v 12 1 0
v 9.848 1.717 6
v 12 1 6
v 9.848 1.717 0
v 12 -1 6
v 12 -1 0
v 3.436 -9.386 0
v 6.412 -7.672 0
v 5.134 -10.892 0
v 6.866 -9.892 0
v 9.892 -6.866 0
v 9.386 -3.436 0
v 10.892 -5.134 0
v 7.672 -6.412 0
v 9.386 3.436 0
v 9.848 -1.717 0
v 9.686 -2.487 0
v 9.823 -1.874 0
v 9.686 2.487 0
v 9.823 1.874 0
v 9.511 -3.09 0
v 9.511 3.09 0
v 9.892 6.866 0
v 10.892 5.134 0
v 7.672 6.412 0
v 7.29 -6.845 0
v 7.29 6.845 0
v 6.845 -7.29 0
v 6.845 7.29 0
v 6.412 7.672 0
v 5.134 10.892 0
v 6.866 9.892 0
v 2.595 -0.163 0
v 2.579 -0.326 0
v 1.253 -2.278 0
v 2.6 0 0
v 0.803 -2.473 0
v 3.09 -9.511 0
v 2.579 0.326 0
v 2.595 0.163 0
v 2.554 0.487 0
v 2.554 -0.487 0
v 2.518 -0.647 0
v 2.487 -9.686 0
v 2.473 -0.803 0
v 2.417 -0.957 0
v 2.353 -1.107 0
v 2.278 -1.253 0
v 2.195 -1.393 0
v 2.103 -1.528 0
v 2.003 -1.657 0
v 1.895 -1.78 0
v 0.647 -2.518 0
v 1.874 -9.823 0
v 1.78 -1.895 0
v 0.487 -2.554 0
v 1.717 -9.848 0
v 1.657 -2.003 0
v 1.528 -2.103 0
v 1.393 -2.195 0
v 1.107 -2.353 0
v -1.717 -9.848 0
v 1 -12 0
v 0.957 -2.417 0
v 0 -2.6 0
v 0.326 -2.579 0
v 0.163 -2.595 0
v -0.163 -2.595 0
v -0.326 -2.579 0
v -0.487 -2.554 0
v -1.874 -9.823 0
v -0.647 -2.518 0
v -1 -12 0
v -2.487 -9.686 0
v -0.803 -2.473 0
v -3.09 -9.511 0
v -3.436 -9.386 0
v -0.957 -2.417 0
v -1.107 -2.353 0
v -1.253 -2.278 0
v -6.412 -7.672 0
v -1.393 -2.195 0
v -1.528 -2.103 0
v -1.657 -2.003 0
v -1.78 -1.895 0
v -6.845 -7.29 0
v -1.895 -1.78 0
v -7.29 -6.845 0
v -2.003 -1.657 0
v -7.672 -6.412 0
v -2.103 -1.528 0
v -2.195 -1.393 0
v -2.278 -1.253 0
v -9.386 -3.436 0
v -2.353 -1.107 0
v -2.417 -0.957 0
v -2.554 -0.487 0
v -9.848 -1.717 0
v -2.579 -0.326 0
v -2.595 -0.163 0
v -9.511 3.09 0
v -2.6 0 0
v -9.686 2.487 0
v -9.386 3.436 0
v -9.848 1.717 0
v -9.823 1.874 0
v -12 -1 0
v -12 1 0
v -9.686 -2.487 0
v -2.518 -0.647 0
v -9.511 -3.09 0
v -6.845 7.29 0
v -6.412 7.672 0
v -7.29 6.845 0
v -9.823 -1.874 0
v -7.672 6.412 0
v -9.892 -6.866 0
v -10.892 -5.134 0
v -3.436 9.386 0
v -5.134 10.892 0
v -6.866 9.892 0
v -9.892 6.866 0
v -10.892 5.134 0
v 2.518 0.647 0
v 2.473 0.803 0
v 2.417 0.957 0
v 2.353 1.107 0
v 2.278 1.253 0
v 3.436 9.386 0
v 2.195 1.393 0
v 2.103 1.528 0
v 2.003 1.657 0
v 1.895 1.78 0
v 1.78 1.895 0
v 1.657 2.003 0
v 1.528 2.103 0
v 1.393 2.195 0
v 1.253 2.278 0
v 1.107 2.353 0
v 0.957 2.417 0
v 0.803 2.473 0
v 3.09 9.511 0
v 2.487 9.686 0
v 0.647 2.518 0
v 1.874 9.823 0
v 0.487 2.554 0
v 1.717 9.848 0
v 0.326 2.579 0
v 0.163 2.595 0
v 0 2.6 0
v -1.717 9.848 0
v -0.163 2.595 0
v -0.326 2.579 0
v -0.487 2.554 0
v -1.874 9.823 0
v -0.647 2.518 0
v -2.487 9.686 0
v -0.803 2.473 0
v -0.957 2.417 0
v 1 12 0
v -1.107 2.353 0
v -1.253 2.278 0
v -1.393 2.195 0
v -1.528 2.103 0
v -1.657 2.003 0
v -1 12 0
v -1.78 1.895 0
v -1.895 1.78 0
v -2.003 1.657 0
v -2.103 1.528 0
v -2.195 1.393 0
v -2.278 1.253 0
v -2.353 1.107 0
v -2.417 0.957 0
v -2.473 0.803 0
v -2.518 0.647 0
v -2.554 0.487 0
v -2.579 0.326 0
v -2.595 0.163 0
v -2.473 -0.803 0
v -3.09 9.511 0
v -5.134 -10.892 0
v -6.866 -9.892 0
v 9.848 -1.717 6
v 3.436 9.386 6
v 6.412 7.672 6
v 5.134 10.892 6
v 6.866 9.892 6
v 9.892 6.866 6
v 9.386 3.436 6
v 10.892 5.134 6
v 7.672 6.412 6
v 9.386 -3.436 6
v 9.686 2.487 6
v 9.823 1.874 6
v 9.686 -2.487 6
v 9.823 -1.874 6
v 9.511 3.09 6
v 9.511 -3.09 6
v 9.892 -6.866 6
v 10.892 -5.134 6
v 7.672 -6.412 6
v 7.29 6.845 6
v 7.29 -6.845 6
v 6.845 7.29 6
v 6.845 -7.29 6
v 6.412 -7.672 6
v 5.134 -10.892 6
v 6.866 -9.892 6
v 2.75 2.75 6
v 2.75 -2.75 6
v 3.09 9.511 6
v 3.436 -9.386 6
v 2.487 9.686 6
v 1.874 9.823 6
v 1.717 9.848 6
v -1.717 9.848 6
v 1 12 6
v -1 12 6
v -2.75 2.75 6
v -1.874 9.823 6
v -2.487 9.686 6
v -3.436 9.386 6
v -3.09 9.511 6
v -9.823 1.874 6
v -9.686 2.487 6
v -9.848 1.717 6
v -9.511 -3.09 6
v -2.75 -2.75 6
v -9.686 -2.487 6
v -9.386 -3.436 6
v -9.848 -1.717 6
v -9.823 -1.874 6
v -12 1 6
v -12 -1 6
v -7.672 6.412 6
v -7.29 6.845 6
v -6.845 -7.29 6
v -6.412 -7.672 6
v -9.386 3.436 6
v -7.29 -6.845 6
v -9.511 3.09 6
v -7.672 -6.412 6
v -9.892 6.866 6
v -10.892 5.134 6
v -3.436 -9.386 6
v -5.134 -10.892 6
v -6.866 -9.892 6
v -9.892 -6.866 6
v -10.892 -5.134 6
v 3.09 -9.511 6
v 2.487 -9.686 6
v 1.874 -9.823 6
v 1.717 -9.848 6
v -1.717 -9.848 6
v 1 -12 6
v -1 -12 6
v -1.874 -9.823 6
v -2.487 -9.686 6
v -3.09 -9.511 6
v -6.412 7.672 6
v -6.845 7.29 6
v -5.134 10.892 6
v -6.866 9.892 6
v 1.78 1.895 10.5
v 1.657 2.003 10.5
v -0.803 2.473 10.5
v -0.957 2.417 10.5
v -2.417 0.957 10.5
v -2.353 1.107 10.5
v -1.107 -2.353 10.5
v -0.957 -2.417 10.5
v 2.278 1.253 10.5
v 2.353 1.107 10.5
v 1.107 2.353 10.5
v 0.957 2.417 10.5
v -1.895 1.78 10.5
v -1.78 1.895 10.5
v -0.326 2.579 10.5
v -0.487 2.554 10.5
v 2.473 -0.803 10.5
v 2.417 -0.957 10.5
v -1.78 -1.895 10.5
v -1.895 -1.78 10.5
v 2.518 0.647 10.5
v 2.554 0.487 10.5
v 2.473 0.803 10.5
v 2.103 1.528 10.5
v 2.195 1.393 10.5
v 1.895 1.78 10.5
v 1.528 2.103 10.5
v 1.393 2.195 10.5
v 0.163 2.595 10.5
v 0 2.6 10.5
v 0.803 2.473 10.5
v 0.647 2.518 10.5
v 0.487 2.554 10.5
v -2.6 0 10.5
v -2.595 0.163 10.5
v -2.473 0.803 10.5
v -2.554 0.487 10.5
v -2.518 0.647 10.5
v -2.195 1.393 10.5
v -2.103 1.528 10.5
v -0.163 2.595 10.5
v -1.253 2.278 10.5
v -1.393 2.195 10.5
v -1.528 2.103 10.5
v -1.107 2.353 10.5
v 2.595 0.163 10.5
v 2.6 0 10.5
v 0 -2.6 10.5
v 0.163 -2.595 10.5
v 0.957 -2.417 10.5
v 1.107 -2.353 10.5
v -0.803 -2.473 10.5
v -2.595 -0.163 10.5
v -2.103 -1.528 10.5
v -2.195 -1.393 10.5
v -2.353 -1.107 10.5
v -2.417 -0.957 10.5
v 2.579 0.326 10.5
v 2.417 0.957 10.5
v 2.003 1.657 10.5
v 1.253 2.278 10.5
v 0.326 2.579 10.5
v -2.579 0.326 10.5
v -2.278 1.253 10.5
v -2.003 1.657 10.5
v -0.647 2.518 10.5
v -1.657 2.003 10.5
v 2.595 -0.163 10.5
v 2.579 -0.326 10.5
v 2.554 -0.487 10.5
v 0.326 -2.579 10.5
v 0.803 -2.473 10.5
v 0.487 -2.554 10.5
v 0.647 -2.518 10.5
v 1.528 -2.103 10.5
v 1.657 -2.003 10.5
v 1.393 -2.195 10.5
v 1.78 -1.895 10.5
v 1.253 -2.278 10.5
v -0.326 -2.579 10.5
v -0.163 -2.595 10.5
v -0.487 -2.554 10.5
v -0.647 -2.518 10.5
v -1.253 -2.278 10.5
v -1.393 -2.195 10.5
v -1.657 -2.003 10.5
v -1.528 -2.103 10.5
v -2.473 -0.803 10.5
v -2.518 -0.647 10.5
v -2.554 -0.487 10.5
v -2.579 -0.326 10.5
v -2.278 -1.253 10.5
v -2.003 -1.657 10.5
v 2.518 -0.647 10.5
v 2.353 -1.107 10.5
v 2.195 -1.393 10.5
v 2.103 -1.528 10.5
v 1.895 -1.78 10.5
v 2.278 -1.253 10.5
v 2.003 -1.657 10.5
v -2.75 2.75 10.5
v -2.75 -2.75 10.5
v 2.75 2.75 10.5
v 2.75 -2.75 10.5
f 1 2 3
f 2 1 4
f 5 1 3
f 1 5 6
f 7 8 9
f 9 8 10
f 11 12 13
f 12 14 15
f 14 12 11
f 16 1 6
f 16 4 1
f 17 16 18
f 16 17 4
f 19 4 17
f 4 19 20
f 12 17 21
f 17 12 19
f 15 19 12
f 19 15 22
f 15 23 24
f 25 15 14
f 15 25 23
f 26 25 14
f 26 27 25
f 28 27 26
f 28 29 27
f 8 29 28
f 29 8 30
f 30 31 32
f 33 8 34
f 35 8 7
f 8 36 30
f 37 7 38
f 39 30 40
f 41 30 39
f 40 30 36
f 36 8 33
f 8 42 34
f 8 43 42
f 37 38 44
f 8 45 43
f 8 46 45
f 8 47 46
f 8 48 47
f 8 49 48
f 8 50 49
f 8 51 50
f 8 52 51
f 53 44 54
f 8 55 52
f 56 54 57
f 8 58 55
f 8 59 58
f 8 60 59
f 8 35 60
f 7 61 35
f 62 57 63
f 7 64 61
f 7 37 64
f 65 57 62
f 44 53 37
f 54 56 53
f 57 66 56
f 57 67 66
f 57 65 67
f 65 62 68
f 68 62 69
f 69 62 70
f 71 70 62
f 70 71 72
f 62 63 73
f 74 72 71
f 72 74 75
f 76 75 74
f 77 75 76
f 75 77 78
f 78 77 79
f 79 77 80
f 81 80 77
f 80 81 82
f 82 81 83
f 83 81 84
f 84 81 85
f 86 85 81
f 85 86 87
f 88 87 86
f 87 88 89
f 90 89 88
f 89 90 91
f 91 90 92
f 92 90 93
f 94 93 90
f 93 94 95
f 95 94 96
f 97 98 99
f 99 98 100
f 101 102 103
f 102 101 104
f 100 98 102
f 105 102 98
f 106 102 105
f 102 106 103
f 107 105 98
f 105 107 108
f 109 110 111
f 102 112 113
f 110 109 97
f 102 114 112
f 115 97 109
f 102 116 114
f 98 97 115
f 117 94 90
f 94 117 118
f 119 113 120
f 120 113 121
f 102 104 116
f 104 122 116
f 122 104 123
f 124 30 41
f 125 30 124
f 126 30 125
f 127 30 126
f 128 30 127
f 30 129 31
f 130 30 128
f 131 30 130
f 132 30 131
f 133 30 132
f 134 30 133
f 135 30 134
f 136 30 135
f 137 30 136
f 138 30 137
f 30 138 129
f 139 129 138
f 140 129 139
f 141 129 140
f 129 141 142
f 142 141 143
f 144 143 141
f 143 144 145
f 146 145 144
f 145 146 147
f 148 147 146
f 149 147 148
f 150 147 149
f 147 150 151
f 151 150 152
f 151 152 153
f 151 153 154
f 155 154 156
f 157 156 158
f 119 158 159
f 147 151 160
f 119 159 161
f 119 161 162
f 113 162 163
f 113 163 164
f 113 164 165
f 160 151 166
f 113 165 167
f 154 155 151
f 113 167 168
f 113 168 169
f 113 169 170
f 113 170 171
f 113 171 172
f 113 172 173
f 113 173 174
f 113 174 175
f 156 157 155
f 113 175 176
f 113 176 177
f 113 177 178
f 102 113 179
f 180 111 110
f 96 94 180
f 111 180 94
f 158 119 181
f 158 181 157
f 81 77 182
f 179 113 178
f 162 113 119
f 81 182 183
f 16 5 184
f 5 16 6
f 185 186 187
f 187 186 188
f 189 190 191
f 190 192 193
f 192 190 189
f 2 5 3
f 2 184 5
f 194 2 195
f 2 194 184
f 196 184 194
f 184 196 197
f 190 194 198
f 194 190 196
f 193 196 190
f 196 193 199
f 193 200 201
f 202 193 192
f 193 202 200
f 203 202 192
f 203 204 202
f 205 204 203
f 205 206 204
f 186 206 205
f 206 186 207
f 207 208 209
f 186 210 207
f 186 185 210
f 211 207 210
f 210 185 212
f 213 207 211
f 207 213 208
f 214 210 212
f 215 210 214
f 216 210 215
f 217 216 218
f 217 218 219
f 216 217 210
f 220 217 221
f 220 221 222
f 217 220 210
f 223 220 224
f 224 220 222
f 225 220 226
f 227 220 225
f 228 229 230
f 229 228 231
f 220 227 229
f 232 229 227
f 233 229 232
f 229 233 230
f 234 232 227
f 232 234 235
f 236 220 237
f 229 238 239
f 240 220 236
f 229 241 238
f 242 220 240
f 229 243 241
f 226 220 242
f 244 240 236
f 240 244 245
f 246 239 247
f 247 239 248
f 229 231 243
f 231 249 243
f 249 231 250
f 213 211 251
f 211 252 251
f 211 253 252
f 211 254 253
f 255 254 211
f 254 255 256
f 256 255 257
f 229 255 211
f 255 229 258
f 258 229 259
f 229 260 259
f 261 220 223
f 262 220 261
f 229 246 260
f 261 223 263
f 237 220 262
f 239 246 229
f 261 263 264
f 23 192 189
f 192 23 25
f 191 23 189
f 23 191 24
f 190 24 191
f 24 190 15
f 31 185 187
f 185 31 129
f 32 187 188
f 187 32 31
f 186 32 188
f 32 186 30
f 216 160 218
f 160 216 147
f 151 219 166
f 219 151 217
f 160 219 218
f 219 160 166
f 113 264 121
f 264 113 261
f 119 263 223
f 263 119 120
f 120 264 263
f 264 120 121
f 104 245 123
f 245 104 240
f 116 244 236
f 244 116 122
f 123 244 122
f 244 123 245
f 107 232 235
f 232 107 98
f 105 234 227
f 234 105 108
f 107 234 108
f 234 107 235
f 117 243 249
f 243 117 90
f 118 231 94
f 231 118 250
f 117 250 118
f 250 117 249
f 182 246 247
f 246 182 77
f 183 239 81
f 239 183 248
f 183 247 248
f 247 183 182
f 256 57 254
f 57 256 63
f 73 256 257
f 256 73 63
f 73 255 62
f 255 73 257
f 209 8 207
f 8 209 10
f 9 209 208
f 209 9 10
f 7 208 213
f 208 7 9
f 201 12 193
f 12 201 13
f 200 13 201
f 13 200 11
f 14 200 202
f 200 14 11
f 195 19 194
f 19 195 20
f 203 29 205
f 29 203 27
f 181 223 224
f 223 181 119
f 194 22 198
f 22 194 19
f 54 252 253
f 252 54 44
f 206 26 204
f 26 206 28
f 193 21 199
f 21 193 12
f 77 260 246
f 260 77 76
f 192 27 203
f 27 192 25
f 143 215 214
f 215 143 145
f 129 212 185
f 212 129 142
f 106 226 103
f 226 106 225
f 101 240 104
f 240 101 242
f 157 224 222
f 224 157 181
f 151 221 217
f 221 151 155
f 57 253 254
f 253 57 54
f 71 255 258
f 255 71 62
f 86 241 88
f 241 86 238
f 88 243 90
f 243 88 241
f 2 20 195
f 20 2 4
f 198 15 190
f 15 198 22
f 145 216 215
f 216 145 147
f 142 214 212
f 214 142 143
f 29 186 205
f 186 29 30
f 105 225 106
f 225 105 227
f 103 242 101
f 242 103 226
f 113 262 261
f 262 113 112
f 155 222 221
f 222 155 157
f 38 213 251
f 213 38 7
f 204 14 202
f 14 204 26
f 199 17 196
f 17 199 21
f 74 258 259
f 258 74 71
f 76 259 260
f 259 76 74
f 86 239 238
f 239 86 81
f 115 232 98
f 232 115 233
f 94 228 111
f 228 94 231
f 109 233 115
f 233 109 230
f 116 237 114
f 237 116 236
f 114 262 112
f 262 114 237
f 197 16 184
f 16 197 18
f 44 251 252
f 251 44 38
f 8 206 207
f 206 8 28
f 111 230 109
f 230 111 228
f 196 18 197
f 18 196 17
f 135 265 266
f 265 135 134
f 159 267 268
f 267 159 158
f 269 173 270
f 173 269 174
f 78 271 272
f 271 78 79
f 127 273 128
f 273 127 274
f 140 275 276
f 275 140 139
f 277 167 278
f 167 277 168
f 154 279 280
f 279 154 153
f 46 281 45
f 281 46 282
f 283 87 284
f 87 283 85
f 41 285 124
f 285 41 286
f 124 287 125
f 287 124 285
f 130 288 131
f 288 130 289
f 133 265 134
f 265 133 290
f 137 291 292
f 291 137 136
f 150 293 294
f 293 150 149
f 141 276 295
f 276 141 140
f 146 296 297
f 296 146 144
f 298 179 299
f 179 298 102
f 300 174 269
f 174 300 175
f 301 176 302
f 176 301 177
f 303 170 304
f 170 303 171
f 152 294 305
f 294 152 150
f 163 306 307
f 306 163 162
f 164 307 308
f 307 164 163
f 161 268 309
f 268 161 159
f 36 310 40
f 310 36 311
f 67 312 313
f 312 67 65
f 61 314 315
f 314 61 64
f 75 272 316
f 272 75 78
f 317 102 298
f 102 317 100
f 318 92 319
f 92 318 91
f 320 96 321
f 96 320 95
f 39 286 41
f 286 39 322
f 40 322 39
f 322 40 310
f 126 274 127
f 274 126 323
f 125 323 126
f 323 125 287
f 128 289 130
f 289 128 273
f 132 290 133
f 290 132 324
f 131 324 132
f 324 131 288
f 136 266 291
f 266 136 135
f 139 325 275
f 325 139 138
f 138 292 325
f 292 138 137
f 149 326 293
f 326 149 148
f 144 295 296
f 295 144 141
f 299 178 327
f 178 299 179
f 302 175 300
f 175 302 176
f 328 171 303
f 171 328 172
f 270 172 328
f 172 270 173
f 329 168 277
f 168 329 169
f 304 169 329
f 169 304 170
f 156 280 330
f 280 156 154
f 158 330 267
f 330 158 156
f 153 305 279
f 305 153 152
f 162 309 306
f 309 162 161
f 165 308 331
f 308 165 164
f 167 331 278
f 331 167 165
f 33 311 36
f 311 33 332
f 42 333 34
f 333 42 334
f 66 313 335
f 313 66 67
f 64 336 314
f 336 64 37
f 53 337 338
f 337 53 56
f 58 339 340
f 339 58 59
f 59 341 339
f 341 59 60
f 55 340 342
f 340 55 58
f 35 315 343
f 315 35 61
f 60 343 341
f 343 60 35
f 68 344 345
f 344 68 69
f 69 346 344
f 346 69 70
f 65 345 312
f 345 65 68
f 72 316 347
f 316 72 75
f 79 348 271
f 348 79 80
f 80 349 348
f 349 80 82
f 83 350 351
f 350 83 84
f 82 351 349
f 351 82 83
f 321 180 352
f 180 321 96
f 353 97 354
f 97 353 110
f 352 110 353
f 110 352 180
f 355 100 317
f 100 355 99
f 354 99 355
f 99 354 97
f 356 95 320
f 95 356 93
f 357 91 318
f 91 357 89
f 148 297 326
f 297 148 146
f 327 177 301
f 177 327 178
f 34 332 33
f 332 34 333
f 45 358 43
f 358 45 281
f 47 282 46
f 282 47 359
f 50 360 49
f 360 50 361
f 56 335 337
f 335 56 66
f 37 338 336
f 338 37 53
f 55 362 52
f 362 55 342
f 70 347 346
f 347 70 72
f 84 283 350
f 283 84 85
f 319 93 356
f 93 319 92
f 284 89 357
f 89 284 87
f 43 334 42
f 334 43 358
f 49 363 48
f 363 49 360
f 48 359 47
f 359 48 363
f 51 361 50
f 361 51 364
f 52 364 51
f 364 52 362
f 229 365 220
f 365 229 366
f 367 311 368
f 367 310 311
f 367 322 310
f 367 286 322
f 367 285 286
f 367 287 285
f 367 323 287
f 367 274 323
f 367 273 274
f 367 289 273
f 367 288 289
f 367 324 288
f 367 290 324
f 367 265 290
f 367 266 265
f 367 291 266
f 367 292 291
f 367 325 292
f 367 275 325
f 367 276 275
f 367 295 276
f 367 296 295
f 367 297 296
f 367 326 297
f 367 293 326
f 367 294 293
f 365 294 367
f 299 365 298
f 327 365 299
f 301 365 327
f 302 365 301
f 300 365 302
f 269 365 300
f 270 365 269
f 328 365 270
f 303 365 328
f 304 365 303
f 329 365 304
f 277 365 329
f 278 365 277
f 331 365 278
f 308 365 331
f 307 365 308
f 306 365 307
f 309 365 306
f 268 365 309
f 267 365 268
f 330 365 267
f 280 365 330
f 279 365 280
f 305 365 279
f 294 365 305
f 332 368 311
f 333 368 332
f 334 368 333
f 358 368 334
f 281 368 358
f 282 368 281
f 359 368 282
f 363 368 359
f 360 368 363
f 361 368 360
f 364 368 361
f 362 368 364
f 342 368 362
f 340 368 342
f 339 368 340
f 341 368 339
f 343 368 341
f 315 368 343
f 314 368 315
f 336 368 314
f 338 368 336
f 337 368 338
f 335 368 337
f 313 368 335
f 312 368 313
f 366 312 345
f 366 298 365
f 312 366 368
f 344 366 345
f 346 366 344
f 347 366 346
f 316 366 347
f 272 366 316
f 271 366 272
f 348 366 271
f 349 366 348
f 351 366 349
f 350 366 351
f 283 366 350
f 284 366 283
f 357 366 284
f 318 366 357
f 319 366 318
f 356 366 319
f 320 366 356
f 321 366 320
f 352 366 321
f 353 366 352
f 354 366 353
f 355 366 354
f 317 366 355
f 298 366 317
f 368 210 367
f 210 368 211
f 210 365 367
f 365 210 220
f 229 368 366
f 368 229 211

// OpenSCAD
// --- Check Point 2: Engenharia de Software FIAP ---
// Peça: Engrenagem Periférica com Encaixe Quadrado
// Objetivo: Modelagem 3D para o sistema de caixa mecânica (Iris Box)

$fn = 100; // Definição de faces para círculos suaves

// --- Parâmetros da Peça ---
num_dentes = 12;
diametro_base = 20; // Diâmetro do corpo da engrenagem
espessura_engrenagem = 6;
furo_eixo = 5.2; // Diâmetro do furo central (com folga)
tamanho_encaixe_quadrado = 5.5; // Lado do quadrado superior
altura_encaixe_quadrado = 4.5;

// --- Execução do Modelo ---
union() {
    // 1. Corpo da Engrenagem e Dentes
    difference() {
        union() {
            // Disco Base
            cylinder(h = espessura_engrenagem, d = diametro_base);
            
            // Criação dos dentes usando loop de rotação
            for (i = [0 : num_dentes - 1]) {
                rotate([0, 0, i * (360 / num_dentes)])
                translate([diametro_base / 2 - 1, 0, 0])
                dente_engrenagem();
            }
        }
        
        // 2. Furo Central para o Eixo
        translate([0, 0, -1])
        cylinder(h = espessura_engrenagem + 2, d = furo_eixo);
    }

    // 3. Encaixe Quadrado Superior (para movimentar as pétalas)
    translate([0, 0, espessura_engrenagem])
    difference() {
        // Bloco quadrado centralizado
        translate([-tamanho_encaixe_quadrado/2, -tamanho_encaixe_quadrado/2, 0])
        cube([tamanho_encaixe_quadrado, tamanho_encaixe_quadrado, altura_encaixe_quadrado]);
        
        // Mantém o furo passando pelo quadrado também
        translate([0, 0, -1])
        cylinder(h = altura_encaixe_quadrado + 2, d = furo_eixo);
    }
}

// --- Módulo do Dente (Geometria Básica) ---
module dente_engrenagem() {
    // Formato trapezoidal simples para evitar necessidade de suportes
    linear_extrude(height = espessura_engrenagem)
    polygon(points=[[0,-2],[3,-1],[3,1],[0,2]]);
}
